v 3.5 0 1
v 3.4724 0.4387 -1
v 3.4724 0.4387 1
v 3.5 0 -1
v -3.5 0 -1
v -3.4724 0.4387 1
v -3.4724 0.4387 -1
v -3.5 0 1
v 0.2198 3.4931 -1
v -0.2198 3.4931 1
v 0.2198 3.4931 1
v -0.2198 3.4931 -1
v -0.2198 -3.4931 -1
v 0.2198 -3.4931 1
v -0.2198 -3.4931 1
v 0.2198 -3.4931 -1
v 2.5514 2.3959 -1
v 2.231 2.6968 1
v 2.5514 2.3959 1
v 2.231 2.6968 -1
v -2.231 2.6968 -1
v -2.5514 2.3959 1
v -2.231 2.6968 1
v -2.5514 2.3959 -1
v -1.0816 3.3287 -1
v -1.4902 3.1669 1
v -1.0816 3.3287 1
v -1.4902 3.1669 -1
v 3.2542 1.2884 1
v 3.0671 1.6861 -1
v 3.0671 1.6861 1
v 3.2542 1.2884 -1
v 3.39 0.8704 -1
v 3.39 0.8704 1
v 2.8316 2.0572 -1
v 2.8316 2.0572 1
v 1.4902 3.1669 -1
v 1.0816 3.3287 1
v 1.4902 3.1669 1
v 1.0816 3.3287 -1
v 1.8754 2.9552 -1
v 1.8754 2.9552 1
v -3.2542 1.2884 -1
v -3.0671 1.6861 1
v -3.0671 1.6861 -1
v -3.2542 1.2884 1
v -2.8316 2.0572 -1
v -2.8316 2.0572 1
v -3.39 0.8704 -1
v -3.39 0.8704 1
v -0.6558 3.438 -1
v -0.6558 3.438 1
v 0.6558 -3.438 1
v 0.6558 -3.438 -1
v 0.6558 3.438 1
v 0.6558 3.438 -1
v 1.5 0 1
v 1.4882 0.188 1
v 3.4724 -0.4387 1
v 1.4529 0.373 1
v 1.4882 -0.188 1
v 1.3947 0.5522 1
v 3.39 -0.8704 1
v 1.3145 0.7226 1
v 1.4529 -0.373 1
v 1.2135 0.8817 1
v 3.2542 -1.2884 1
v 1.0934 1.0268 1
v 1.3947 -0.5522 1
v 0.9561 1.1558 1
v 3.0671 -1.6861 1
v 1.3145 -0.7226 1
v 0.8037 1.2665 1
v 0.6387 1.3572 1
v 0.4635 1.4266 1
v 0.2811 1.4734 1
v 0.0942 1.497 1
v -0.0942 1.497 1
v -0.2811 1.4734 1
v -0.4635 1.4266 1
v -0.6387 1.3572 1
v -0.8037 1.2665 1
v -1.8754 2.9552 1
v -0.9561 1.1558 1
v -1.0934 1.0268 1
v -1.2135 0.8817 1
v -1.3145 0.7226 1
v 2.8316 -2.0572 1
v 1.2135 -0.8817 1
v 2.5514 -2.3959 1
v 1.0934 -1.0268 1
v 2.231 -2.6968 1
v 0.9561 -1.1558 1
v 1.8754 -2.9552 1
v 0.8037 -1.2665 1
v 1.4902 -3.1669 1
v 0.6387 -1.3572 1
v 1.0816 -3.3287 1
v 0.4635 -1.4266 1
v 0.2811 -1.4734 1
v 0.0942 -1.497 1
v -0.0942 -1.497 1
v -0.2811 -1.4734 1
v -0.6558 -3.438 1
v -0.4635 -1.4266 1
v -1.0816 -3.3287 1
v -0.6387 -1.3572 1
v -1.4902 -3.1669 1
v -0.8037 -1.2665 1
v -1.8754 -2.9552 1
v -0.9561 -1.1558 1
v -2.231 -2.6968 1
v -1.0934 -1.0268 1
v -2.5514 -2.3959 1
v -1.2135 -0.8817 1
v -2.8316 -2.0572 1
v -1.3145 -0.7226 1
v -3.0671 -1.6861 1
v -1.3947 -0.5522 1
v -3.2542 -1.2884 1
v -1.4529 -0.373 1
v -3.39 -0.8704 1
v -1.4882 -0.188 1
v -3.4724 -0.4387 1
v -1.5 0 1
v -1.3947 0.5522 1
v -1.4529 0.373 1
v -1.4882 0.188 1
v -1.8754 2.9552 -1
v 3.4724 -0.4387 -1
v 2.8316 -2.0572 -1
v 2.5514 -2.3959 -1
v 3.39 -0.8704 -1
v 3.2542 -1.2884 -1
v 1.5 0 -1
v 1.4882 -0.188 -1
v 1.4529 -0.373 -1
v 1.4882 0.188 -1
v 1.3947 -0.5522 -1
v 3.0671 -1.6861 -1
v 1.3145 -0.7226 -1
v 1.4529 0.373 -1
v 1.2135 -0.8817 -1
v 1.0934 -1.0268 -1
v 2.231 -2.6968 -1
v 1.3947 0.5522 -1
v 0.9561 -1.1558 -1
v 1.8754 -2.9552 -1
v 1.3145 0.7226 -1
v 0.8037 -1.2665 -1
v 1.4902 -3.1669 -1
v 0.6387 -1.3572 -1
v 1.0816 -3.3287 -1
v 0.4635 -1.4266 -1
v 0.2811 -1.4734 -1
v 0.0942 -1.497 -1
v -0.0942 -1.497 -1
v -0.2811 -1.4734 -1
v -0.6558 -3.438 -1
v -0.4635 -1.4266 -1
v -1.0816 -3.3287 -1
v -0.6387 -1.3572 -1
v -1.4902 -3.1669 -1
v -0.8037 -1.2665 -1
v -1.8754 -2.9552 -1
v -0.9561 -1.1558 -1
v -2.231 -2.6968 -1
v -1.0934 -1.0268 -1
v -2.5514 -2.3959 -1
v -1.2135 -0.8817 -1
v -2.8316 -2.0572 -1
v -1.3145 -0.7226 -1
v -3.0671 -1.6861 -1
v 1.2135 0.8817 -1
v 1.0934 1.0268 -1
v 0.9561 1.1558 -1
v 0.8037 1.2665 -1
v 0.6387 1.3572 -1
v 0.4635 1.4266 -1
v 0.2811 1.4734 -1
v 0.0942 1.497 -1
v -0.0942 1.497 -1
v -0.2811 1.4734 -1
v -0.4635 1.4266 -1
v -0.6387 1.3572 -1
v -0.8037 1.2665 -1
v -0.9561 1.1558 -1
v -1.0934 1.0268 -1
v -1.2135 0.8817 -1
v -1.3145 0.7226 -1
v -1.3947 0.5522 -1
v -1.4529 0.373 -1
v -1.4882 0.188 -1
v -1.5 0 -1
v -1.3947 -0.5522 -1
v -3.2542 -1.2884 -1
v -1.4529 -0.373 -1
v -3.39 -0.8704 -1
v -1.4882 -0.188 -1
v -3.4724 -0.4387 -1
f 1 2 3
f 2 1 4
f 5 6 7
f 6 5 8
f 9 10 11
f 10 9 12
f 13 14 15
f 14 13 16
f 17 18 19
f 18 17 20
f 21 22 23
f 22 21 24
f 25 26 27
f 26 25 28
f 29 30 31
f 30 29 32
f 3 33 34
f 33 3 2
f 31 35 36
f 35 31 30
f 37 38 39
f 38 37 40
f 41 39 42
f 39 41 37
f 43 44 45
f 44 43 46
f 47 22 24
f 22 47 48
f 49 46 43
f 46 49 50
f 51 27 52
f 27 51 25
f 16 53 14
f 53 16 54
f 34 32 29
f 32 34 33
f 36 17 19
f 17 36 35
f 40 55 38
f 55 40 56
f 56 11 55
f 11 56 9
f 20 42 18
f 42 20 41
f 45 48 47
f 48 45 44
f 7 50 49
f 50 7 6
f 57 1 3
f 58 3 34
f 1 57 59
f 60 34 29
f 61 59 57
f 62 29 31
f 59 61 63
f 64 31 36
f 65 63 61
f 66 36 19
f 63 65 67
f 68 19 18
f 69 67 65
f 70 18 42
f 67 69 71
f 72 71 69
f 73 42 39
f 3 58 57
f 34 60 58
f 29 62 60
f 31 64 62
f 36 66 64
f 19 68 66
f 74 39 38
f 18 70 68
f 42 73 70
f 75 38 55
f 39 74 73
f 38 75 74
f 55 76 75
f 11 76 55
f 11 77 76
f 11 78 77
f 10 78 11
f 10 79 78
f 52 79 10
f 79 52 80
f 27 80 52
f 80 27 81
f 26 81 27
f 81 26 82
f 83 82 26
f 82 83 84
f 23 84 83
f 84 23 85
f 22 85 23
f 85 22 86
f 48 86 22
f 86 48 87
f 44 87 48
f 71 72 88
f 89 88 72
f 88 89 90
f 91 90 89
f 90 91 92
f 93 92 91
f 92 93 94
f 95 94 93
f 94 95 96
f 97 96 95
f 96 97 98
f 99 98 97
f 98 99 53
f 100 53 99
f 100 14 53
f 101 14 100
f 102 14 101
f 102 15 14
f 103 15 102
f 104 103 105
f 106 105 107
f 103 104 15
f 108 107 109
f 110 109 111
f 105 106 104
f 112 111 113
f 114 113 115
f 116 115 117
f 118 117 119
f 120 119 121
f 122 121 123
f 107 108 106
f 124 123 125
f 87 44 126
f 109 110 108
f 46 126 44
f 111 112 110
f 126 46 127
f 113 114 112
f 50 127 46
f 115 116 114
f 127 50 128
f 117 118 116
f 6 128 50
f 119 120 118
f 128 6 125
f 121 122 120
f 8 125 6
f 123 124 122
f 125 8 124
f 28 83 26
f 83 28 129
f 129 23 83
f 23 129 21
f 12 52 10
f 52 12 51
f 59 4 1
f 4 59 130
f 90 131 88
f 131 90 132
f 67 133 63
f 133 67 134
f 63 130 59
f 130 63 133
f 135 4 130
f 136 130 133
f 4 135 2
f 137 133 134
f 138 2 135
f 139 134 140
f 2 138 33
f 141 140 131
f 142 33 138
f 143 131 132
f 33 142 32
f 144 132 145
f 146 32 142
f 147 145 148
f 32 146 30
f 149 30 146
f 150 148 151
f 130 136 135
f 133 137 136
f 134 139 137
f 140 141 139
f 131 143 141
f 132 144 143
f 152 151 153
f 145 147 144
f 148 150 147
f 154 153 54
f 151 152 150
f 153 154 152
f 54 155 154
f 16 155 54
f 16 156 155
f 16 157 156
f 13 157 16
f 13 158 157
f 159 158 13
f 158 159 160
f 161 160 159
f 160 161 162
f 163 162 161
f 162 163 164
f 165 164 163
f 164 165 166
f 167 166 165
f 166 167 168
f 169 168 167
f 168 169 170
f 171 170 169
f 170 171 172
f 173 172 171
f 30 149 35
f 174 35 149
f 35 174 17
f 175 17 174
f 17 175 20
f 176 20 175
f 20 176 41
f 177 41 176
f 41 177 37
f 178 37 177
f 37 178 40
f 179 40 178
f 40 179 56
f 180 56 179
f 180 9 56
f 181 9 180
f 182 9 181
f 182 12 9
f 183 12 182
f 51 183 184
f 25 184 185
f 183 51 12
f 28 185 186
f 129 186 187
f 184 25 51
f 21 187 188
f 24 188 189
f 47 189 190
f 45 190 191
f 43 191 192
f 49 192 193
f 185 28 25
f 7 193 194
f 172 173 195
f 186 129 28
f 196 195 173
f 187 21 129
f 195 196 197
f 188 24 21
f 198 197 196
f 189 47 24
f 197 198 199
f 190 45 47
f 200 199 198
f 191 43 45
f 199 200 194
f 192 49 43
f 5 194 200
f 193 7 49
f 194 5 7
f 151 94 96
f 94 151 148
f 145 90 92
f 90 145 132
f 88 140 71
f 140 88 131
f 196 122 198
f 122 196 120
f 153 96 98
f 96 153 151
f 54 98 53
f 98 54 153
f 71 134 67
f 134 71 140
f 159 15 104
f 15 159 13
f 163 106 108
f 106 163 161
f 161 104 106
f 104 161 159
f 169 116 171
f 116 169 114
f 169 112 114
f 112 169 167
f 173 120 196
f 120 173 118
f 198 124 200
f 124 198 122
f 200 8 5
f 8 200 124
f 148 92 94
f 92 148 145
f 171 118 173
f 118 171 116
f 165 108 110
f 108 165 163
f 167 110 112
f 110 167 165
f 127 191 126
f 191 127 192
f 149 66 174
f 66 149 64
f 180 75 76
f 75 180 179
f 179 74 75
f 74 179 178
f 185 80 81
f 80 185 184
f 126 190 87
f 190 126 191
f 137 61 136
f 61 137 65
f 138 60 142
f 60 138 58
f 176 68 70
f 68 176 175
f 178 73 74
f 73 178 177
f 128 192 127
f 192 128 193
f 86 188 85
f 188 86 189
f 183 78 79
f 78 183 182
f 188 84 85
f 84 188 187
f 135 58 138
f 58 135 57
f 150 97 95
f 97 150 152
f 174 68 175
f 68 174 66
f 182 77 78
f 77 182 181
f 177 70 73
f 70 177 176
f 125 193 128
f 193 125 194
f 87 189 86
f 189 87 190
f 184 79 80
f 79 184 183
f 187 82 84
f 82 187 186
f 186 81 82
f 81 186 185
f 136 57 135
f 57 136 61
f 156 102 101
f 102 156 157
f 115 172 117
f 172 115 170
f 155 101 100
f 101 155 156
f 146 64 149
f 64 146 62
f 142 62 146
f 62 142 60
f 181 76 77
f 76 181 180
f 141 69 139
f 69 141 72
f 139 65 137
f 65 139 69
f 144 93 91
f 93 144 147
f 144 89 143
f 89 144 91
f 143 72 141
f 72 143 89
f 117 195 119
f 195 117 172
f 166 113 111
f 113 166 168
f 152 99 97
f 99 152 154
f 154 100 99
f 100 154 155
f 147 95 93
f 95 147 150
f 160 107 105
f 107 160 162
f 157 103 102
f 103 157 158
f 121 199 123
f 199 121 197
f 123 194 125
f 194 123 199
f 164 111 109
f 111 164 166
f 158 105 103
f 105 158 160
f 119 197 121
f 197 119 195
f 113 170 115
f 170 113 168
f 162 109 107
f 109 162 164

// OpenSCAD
$fn = 50;


difference() {
	union() {
		translate(v = [0, 0, -1.0000000000]) {
			cylinder(h = 2, r = 3.5000000000);
		}
	}
	union() {
		translate(v = [0, 0, -100.0000000000]) {
			cylinder(h = 200, r = 1.5000000000);
		}
	}
}
